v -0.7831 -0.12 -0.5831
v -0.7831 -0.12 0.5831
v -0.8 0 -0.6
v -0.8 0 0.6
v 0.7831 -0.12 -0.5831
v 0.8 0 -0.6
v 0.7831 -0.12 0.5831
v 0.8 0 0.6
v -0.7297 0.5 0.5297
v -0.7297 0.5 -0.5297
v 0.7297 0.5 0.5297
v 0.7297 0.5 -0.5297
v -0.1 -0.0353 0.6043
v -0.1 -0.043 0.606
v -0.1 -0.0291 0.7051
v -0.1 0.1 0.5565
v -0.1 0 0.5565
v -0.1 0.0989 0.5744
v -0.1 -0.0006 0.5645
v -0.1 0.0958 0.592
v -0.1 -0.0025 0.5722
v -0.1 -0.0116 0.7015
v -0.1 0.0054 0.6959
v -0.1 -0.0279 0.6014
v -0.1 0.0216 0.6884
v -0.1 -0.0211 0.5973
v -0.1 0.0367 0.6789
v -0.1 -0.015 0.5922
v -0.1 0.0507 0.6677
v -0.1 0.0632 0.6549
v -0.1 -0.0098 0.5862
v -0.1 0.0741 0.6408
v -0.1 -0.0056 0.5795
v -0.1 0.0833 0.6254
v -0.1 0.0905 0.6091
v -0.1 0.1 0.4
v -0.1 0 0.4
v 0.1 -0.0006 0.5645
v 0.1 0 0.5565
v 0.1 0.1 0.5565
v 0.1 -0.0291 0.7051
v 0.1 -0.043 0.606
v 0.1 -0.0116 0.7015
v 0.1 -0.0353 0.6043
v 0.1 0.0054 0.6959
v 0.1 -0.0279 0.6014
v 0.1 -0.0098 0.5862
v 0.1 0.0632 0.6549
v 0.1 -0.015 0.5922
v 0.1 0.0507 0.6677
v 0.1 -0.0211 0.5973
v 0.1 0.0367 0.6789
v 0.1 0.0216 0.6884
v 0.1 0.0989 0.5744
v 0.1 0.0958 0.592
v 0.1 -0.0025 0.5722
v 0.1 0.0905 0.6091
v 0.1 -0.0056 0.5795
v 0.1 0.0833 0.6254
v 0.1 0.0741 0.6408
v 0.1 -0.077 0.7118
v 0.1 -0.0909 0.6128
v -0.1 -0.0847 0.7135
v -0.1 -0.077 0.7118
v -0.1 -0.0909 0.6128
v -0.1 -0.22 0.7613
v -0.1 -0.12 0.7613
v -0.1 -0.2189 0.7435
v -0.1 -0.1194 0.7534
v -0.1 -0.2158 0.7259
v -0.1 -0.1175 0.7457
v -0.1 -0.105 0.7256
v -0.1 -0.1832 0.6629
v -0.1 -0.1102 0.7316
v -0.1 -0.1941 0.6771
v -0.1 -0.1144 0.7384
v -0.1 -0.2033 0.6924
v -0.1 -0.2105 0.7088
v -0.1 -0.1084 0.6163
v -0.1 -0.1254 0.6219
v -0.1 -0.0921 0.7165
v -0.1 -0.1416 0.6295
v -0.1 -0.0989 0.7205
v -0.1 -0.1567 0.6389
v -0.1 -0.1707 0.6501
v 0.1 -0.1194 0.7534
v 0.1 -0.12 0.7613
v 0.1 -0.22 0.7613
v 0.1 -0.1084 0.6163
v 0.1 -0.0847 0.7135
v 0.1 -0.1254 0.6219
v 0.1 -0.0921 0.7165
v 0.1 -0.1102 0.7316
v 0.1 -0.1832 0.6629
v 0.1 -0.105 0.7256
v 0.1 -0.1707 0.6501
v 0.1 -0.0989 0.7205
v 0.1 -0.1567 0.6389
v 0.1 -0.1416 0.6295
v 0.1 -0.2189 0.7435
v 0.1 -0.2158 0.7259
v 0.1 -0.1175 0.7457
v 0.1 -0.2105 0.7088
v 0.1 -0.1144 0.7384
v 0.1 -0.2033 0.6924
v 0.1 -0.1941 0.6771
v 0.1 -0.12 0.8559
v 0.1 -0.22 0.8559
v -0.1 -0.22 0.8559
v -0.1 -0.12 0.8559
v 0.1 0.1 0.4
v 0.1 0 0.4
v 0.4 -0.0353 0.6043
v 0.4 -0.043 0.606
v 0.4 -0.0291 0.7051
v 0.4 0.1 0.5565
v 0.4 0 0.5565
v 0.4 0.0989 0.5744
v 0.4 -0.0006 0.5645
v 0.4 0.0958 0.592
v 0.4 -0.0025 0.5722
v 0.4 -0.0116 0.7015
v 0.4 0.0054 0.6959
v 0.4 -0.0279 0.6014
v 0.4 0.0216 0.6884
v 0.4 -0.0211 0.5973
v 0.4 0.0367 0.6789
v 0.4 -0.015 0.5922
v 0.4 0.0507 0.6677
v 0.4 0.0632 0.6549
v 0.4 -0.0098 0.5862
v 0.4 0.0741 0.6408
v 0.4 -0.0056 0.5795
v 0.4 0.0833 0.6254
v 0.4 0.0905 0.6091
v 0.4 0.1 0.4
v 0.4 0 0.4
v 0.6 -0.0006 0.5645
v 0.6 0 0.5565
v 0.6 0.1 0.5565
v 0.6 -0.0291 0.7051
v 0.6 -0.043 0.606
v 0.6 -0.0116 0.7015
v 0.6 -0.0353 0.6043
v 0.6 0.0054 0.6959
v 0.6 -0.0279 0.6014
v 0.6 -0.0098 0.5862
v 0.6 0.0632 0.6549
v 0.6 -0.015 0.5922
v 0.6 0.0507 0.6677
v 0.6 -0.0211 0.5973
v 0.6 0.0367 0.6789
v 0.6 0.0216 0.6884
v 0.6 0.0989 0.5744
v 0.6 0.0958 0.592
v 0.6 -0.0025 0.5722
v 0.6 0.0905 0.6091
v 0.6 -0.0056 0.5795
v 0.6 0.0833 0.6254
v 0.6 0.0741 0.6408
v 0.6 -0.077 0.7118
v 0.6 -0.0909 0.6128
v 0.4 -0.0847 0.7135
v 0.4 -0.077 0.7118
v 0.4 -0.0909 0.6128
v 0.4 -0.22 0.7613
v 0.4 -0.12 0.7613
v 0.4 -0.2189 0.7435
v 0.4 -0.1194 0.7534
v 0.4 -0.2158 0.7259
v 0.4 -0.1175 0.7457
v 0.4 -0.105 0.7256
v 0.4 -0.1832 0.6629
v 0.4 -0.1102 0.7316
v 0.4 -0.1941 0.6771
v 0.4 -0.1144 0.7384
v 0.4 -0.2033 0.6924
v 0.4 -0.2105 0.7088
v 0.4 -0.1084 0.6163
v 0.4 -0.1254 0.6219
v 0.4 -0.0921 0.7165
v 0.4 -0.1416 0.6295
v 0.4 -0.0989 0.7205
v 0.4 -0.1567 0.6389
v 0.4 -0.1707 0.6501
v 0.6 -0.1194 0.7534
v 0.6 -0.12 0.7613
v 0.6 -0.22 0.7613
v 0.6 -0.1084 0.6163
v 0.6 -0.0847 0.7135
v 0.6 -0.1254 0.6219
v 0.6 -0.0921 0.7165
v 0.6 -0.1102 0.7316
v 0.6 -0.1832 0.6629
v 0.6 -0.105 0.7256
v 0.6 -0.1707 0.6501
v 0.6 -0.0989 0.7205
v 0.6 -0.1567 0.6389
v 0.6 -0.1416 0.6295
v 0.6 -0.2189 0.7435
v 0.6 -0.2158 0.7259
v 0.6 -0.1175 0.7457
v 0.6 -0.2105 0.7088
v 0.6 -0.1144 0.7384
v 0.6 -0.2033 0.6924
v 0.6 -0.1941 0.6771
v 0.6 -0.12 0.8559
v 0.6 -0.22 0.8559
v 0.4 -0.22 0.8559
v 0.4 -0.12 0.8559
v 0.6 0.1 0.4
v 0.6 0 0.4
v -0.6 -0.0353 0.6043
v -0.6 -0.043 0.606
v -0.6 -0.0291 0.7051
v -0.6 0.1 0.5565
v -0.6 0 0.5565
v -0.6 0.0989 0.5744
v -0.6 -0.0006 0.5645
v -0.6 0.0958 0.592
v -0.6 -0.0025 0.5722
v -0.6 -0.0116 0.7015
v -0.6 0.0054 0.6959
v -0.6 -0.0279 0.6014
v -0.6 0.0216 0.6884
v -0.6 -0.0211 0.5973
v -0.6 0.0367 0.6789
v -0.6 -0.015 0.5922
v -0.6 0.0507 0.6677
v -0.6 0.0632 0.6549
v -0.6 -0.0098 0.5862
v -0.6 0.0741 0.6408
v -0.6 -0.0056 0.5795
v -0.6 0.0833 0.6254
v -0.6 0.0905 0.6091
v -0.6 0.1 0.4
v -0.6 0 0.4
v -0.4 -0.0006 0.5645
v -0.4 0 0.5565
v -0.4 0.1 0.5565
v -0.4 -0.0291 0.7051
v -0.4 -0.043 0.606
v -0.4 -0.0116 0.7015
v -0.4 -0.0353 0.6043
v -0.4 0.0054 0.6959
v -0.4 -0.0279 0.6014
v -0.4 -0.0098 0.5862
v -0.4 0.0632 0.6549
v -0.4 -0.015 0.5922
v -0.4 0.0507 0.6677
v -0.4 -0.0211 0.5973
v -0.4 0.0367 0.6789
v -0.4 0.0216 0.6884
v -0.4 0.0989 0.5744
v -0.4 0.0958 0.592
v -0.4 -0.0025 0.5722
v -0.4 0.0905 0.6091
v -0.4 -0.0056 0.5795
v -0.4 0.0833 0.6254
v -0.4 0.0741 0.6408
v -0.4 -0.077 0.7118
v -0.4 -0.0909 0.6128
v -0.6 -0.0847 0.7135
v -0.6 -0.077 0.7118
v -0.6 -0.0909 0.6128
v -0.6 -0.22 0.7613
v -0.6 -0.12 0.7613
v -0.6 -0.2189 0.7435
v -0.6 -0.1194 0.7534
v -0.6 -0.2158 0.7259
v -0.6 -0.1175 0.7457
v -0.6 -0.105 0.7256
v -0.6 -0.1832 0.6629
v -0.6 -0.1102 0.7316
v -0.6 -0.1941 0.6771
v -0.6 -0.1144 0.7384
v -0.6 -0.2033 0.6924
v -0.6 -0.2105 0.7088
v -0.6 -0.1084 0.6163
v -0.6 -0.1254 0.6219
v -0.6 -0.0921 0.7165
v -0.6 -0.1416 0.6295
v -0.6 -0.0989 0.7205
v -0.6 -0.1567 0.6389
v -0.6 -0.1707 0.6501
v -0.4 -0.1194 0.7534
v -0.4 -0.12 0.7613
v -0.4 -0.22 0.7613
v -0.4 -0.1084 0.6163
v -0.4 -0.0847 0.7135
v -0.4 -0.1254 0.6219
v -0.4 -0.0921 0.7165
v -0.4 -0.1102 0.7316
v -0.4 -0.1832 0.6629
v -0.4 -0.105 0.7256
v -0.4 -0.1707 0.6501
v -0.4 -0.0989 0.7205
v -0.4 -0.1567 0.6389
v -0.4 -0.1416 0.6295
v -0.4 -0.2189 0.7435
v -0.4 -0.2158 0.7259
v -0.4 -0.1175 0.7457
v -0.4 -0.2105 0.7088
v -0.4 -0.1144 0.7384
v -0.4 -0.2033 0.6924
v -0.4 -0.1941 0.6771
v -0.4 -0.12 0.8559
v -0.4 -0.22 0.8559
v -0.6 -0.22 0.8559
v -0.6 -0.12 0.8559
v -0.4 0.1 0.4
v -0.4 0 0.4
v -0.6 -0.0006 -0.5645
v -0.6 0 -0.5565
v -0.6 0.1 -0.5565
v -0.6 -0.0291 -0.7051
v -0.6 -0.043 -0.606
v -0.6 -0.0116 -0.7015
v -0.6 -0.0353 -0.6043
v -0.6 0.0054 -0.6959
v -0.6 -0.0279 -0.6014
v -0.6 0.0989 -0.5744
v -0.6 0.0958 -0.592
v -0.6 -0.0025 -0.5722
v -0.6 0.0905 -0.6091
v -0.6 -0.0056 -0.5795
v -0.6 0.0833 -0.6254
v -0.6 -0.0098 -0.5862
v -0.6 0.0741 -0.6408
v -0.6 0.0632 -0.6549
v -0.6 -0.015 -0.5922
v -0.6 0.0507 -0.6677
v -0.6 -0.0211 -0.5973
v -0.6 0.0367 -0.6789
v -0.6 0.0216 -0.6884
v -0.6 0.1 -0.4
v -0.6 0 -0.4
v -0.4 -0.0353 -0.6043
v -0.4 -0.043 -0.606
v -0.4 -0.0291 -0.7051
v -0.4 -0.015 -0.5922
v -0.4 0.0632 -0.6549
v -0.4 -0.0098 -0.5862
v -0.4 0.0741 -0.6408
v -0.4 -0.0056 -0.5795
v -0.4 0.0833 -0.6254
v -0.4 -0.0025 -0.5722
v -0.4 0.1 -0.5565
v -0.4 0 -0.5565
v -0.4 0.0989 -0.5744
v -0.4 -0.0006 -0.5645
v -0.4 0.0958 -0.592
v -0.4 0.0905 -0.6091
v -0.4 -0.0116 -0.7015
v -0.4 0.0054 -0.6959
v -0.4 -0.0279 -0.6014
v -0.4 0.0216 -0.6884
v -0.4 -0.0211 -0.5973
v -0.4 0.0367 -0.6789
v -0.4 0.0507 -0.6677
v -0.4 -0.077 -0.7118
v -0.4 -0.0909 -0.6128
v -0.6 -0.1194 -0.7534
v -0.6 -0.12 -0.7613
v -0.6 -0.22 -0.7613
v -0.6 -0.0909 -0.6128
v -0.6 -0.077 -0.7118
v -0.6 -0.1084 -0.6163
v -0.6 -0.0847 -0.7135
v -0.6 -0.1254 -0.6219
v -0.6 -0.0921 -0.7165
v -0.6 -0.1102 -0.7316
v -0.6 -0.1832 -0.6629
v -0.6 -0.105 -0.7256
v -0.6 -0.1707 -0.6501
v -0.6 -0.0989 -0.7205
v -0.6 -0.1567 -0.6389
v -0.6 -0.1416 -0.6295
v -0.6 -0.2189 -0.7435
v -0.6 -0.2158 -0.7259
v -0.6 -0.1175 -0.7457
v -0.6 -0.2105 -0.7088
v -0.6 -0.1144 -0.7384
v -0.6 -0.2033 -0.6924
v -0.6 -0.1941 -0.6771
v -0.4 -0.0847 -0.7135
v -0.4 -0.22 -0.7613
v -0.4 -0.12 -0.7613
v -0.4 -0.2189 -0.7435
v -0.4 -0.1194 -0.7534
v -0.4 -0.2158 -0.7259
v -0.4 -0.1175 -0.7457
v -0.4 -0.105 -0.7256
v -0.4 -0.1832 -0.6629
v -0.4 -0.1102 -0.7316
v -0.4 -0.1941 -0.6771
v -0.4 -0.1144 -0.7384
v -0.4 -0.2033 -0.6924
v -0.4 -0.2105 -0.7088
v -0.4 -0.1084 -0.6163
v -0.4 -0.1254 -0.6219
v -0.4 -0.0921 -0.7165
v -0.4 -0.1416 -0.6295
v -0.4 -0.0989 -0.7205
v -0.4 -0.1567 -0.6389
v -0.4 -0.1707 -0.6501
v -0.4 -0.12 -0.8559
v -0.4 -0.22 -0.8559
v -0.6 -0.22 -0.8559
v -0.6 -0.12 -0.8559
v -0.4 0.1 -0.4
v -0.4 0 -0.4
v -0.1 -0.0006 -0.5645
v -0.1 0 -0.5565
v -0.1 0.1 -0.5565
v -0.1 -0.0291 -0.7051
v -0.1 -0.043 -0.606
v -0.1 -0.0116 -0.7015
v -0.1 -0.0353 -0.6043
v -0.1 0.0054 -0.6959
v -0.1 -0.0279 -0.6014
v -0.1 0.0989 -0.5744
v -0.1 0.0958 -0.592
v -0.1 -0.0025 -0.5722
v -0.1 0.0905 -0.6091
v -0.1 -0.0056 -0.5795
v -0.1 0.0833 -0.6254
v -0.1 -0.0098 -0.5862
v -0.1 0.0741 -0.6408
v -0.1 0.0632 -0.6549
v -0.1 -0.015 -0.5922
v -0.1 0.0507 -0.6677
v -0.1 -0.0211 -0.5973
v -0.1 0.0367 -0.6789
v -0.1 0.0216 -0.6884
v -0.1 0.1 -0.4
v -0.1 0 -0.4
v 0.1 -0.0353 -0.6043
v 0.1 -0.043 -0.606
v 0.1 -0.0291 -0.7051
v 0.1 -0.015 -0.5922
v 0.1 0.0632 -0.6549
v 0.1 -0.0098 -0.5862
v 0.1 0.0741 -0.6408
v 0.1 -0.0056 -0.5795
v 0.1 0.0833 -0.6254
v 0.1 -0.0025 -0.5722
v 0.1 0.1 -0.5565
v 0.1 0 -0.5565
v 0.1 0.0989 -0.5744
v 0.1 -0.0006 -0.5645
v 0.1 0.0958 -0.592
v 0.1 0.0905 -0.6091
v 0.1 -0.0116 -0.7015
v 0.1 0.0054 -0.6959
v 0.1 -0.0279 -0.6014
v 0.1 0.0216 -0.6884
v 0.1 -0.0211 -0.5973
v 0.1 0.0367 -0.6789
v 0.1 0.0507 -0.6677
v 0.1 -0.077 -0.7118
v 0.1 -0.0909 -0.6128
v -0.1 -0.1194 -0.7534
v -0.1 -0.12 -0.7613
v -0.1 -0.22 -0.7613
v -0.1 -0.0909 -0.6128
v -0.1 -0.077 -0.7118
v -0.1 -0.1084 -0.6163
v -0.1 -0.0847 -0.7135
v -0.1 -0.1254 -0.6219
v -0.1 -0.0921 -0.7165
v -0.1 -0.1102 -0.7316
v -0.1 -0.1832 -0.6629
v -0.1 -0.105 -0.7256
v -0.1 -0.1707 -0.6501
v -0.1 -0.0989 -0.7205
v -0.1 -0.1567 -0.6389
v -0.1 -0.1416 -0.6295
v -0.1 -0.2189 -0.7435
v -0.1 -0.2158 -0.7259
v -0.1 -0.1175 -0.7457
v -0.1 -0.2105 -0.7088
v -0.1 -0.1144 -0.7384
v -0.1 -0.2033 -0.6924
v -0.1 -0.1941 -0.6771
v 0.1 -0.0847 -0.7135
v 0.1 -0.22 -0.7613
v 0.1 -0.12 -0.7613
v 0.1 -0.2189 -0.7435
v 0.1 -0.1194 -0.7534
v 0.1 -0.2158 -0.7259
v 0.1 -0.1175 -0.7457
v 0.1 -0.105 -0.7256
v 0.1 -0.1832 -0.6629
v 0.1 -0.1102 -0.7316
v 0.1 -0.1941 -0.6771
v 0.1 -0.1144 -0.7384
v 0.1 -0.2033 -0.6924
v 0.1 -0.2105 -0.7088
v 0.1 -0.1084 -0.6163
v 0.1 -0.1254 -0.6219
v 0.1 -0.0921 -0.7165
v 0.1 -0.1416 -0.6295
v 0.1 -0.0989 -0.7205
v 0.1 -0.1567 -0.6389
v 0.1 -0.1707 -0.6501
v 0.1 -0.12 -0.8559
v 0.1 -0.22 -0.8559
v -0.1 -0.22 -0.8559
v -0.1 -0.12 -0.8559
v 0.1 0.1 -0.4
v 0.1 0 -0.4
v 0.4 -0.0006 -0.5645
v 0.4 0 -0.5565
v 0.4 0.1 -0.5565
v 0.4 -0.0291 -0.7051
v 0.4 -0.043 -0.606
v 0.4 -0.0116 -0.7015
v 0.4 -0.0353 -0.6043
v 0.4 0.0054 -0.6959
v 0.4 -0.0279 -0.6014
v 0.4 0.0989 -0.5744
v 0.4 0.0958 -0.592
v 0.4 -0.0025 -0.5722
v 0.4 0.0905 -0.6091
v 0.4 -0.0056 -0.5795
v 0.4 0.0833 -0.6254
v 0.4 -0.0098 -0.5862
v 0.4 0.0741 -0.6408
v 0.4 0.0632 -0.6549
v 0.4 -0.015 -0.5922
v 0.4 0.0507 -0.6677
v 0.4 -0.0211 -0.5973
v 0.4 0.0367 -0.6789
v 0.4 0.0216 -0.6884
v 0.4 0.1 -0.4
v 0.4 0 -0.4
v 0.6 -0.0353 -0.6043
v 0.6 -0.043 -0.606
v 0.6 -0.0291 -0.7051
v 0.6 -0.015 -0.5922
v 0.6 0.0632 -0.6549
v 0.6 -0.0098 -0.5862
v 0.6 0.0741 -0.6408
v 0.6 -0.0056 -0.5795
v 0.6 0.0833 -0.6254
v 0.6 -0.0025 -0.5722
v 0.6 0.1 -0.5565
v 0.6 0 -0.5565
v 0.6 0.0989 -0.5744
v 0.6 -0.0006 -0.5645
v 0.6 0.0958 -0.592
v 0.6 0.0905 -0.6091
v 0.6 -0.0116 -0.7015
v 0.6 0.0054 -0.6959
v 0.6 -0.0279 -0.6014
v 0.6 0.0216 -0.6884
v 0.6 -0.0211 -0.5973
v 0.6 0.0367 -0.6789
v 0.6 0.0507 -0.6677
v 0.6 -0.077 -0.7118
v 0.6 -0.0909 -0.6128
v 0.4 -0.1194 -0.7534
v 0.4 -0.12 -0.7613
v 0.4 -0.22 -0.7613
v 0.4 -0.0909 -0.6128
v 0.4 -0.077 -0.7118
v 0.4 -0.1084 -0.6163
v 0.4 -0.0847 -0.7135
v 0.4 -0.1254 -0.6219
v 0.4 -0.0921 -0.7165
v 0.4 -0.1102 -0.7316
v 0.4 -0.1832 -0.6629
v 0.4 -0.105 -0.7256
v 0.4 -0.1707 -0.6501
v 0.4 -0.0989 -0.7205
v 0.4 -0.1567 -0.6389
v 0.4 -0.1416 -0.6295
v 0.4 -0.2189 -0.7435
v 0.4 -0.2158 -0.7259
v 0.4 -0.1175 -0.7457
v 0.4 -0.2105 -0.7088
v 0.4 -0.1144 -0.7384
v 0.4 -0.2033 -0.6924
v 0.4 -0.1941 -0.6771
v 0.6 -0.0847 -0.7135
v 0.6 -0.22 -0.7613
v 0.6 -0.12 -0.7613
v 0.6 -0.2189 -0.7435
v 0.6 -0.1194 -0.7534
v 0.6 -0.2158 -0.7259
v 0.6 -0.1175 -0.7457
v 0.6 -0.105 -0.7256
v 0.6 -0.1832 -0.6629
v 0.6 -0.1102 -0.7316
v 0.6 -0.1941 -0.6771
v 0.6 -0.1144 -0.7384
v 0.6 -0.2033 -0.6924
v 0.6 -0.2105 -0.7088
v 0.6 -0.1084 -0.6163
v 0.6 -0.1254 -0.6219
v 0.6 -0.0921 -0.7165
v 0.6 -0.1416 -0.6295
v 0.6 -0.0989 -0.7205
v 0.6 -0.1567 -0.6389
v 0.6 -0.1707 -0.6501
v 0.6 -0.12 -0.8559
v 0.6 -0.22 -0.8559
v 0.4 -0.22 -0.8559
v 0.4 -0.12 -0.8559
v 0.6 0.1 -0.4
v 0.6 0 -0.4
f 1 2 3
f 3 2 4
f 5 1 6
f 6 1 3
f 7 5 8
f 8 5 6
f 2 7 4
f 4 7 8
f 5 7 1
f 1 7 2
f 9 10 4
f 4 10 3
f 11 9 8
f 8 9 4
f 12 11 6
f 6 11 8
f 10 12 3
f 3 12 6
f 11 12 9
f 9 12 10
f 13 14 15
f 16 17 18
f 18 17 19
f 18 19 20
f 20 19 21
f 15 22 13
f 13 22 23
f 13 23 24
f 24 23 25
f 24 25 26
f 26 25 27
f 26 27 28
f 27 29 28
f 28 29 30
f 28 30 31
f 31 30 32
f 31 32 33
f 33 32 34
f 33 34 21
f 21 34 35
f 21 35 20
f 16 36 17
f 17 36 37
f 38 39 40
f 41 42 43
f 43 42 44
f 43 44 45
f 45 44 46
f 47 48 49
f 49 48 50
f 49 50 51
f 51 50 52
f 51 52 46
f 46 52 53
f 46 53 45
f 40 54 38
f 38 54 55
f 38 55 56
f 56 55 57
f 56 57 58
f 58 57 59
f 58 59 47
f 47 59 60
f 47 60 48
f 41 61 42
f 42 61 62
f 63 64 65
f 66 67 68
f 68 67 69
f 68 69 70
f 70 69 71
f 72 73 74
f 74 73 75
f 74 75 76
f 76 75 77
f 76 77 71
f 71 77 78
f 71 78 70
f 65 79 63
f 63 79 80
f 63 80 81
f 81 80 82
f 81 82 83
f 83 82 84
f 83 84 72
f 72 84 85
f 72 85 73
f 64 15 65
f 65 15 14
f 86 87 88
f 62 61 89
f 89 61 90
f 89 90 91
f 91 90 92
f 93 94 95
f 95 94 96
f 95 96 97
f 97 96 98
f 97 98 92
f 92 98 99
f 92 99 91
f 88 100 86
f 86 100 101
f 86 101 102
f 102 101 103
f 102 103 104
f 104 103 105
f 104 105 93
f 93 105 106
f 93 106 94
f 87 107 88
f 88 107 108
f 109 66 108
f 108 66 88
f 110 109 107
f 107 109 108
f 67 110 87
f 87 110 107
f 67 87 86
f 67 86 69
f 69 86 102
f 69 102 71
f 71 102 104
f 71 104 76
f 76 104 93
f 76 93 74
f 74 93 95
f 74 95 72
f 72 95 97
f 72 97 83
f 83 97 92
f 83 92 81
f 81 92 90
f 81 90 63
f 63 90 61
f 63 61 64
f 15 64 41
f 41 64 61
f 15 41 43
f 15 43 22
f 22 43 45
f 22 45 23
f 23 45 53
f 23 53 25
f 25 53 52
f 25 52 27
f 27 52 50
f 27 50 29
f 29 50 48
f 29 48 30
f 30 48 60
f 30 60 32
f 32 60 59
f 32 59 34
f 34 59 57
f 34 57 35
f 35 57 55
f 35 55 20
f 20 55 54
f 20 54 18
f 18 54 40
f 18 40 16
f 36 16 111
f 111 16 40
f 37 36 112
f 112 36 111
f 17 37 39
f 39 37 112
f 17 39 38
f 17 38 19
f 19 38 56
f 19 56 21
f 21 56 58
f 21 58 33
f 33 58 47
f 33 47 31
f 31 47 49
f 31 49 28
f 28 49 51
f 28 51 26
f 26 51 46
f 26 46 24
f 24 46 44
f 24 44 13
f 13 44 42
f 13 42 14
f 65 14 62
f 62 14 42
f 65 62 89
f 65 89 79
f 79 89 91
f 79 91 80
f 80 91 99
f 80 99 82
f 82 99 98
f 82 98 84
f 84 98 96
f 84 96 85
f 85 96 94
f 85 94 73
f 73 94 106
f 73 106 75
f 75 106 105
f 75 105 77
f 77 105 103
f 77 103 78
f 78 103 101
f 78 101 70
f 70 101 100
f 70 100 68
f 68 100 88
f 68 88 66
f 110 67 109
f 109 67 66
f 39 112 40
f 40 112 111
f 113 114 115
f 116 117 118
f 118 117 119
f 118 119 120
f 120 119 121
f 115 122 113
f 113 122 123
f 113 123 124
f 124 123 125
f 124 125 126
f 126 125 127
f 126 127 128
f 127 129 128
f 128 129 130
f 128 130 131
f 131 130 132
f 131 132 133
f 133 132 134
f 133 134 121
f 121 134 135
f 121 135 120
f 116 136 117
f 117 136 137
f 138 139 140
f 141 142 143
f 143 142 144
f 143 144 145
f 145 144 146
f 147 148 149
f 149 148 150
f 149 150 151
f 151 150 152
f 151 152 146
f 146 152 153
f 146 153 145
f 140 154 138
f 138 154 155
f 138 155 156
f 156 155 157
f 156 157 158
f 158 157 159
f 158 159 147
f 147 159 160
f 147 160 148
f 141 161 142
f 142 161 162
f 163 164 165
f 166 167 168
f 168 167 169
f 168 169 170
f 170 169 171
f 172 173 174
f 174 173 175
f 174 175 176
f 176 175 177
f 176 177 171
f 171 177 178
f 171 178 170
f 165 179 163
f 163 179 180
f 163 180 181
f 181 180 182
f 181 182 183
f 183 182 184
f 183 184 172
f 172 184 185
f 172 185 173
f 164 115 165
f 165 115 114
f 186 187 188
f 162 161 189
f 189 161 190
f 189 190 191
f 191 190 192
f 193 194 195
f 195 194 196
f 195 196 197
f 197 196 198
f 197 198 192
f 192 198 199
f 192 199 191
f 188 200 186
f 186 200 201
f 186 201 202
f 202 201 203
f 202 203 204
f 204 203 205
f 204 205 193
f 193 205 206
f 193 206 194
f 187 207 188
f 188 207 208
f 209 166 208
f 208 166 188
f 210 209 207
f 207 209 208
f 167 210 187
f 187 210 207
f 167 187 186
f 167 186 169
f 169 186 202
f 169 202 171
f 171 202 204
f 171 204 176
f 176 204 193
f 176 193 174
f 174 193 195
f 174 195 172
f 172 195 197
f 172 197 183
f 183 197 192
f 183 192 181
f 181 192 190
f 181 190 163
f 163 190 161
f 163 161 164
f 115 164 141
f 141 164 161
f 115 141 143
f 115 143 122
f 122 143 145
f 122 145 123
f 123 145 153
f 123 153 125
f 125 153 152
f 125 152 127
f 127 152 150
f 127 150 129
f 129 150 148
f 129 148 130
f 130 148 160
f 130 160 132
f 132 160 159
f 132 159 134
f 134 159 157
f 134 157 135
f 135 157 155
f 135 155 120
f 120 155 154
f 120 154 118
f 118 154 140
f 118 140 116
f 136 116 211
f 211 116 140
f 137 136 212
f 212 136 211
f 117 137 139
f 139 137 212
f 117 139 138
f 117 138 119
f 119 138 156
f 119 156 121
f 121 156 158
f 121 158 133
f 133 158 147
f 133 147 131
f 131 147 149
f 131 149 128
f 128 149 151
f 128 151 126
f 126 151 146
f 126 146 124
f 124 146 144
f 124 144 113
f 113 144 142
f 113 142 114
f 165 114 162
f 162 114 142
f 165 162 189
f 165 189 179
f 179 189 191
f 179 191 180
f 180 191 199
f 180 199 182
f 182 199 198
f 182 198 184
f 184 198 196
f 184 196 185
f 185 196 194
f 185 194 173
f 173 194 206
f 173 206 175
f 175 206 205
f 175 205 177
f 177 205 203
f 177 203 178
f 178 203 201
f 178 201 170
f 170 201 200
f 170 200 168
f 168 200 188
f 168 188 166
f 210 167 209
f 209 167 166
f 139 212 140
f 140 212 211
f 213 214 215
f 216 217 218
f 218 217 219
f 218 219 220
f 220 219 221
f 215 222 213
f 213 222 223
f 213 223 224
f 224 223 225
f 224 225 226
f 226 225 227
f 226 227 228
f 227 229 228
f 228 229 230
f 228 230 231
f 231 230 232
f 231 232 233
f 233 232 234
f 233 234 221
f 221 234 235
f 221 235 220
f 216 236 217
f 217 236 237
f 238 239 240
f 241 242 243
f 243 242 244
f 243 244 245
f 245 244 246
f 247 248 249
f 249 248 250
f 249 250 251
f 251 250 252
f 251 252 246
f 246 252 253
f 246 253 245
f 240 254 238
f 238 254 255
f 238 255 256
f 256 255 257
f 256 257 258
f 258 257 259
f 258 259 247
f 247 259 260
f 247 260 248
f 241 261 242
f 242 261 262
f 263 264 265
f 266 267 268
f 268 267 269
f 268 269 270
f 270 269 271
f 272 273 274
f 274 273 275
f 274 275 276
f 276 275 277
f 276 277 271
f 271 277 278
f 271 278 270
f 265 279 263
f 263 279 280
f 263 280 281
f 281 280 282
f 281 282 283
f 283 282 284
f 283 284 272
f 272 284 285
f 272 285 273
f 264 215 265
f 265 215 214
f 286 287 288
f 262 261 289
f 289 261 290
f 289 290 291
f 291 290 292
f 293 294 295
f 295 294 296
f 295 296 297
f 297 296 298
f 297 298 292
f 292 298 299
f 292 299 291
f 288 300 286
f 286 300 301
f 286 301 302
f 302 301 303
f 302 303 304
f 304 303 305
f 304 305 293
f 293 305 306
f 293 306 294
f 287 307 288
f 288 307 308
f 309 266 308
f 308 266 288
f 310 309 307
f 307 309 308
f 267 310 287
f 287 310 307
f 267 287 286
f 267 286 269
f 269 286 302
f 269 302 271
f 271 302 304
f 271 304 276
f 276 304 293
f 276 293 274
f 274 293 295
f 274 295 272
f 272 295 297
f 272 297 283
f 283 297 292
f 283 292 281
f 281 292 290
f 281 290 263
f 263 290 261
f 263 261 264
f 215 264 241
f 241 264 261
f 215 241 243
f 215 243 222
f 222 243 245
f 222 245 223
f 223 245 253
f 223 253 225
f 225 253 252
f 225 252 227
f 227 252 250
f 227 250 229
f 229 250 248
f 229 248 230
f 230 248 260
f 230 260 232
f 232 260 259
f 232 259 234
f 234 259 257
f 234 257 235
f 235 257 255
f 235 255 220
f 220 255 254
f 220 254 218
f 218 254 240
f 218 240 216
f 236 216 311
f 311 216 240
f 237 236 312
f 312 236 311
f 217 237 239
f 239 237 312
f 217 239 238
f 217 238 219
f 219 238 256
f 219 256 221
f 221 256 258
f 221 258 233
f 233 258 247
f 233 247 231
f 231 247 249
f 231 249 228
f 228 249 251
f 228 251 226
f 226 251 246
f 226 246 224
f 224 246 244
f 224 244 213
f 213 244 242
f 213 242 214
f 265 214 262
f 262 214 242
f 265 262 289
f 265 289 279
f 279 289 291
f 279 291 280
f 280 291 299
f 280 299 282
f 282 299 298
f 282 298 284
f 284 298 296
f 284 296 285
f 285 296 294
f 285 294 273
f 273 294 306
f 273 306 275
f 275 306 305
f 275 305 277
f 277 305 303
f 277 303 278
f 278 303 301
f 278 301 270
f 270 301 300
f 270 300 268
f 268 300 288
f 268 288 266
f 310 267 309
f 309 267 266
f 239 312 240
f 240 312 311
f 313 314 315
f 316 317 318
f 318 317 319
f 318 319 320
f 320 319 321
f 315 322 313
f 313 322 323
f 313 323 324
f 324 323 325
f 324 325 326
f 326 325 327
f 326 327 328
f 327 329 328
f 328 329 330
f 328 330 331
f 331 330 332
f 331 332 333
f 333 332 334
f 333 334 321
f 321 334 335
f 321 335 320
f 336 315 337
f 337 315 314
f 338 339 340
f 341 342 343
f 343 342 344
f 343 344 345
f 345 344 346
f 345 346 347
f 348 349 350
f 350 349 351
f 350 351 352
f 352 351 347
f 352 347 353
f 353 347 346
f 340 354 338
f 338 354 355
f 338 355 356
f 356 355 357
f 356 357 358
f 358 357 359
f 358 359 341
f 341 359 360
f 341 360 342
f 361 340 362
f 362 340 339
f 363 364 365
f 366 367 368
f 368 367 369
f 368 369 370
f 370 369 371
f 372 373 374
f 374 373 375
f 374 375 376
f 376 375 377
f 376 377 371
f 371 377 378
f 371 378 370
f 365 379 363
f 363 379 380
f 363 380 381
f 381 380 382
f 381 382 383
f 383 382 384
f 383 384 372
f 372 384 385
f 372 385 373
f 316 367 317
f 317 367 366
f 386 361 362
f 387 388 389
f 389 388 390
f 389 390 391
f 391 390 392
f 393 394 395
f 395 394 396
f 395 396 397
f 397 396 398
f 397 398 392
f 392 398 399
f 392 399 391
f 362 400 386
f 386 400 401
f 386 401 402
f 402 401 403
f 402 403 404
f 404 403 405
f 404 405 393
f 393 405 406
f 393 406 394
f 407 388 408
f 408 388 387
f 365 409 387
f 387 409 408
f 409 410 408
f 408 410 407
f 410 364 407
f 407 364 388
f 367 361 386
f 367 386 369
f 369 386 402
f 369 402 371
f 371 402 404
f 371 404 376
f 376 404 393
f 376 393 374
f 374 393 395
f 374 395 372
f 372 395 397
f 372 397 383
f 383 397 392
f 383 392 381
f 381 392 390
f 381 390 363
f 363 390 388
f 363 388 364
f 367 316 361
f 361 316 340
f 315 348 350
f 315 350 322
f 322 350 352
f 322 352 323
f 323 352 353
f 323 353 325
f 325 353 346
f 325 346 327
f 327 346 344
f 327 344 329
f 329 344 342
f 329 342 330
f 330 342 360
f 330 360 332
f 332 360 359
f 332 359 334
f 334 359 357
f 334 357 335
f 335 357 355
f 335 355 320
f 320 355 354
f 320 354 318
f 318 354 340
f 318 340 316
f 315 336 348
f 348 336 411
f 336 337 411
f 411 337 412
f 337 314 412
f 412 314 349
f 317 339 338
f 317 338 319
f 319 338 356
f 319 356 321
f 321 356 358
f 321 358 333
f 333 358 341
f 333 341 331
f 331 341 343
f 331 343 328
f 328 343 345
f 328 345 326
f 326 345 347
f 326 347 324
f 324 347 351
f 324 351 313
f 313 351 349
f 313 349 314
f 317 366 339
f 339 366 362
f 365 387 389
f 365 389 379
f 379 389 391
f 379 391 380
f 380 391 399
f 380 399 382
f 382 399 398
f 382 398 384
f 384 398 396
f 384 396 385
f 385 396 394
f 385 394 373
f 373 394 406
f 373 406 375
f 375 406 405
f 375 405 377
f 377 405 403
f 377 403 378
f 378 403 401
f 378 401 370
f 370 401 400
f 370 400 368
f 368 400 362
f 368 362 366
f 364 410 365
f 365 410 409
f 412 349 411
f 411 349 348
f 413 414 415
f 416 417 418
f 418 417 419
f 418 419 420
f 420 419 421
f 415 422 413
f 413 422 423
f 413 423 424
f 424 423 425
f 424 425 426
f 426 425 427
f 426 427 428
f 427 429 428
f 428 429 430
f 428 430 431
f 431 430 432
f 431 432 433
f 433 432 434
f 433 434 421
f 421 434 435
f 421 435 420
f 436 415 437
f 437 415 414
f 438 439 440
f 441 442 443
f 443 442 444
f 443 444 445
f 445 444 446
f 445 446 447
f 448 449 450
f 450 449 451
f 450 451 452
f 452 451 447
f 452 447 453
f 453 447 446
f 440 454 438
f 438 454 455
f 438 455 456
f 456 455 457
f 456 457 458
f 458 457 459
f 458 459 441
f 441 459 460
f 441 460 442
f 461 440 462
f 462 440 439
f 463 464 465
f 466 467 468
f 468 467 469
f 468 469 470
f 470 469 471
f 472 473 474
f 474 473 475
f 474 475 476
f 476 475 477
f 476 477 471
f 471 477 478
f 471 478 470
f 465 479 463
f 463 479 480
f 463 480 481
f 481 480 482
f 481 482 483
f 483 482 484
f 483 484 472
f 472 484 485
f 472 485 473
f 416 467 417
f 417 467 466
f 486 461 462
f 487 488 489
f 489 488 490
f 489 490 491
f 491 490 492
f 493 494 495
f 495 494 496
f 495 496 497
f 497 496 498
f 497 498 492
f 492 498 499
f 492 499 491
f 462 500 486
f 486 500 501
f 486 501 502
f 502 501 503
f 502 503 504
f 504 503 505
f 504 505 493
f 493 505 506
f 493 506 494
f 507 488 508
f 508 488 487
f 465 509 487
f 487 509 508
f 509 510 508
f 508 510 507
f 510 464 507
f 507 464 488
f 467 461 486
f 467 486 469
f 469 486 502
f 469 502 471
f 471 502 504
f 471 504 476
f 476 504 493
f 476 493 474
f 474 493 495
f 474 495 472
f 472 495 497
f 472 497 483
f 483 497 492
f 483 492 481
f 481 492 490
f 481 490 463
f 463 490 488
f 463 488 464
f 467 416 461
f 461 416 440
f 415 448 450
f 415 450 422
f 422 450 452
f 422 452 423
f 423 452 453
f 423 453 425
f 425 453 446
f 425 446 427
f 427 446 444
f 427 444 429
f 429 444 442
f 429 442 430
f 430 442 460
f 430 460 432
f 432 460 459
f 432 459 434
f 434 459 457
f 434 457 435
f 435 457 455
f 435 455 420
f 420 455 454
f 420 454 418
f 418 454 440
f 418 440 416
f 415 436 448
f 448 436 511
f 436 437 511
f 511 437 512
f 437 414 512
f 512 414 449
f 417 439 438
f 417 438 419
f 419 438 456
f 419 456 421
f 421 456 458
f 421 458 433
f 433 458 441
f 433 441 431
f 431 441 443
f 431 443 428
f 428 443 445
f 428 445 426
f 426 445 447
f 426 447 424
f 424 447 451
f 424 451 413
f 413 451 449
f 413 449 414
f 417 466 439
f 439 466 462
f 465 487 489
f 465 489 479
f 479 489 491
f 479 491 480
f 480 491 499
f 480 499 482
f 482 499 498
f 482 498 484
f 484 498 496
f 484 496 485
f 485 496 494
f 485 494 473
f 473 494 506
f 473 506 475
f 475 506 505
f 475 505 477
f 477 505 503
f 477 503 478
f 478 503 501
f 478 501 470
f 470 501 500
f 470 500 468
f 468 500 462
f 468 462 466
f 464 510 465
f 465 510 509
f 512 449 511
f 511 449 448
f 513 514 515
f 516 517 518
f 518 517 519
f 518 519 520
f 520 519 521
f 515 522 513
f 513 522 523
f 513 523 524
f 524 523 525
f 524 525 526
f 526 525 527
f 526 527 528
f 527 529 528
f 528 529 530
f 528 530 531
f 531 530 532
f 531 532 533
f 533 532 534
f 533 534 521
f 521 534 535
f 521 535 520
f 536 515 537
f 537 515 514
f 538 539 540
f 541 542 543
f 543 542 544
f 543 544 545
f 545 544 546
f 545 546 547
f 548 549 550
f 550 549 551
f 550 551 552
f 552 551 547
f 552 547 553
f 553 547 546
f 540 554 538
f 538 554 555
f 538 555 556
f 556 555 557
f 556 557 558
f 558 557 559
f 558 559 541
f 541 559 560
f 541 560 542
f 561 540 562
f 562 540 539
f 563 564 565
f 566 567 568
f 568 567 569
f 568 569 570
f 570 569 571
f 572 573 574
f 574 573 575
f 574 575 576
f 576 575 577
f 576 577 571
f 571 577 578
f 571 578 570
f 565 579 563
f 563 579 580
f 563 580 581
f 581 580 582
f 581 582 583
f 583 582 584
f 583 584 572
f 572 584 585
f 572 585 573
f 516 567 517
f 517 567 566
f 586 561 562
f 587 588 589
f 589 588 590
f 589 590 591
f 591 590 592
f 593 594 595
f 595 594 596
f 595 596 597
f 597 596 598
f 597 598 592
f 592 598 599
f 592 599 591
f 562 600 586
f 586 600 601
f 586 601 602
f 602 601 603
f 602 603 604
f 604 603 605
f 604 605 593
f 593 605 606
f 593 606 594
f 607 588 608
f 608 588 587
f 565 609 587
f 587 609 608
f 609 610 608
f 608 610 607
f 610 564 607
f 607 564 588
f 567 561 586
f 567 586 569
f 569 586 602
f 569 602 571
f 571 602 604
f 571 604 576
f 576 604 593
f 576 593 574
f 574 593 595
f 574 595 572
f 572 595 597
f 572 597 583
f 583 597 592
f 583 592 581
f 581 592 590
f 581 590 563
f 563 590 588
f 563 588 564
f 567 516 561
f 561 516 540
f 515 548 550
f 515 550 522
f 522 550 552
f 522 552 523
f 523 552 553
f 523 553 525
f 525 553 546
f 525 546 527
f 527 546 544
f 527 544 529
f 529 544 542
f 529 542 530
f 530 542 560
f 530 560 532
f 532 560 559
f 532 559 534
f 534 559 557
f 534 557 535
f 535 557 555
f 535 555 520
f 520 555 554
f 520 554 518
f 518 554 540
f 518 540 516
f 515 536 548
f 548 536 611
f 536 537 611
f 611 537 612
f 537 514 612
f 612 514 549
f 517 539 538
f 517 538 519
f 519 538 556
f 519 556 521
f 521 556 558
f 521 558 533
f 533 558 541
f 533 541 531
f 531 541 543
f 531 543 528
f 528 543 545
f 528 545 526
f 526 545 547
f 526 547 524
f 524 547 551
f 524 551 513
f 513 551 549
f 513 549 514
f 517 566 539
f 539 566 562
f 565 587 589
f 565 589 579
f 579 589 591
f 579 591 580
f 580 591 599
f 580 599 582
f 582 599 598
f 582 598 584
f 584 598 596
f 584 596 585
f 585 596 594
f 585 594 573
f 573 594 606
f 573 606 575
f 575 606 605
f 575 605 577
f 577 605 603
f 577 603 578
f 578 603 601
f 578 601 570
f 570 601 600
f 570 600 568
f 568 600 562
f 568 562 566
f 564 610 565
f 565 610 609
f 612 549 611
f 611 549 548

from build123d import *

# Parameters (mm, degrees)
SKETCH1_W                     = 1.6
SKETCH1_H                     = 1.2
BOSS_EXTRUDE1_DEPTH           = 0.5
BOSS_EXTRUDE1_TAPER           = 8
BOSS_EXTRUDE1_OTHER_WAY_DEPTH = 0.12
BOSS_EXTRUDE1_OTHER_WAY_TAPER = 8
BASE_FLANGE2_DEPTH            = 0.1
LPATTERN1_COUNT               = 2
LPATTERN1_PITCH               = 0.5
LPATTERN1_2_COUNT             = 2
LPATTERN1_2_PITCH             = 0.5


# Sheet-metal steps are written as plain solids
with BuildPart() as part:
    # Sketch1 → Boss-Extrude1 (new body)
    with BuildSketch(Plane(origin=(0, 0, 0), x_dir=(1, 0, 0), z_dir=(0, 1, 0))):
        Rectangle(SKETCH1_W, SKETCH1_H)
    extrude(amount=BOSS_EXTRUDE1_DEPTH, taper=BOSS_EXTRUDE1_TAPER)

    # Sketch1 → Boss-Extrude1 other way (add)
    with BuildSketch(Plane(origin=(0, 0, 0), x_dir=(1, 0, 0), z_dir=(0, 1, 0))):
        Rectangle(SKETCH1_W, SKETCH1_H)
    extrude(amount=-BOSS_EXTRUDE1_OTHER_WAY_DEPTH, taper=BOSS_EXTRUDE1_OTHER_WAY_TAPER)


with BuildPart() as body_2:
    # Sketch2 → Base-Flange2 (new, symmetric)
    with BuildSketch(Plane.ZY):
        with BuildLine():
            Line((0.4, 0), (0.556535663, 0))
            ThreePointArc((0.556535663, 0), (0.589338615, -0.012264521), (0.606049067, -0.043041345))
            Line((0.606049067, -0.043041345), (0.612771784, -0.090875965))
            ThreePointArc((0.612771784, -0.090875965), (0.66290314, -0.183206437), (0.761311994, -0.22))
            Line((0.761311994, -0.22), (0.855918984, -0.22))
            Line((0.855918984, -0.22), (0.855918984, -0.12))
            Line((0.855918984, -0.12), (0.761311994, -0.12))
            ThreePointArc((0.761311994, -0.12), (0.728509043, -0.107735479), (0.711798591, -0.076958655))
            Line((0.711798591, -0.076958655), (0.705075873, -0.029124035))
            ThreePointArc((0.705075873, -0.029124035), (0.654944517, 0.063206437), (0.556535663, 0.1))
            Line((0.556535663, 0.1), (0.4, 0.1))
            Line((0.4, 0.1), (0.4, 0))
        make_face()
    extrude(amount=BASE_FLANGE2_DEPTH, both=True)


with BuildPart() as lpattern1_1:
    # LPattern1: pattern copy
    add(body_2.part.moved(Location(Vector(1, 0, 0) * (1 * LPATTERN1_PITCH))))


with BuildPart() as lpattern1_2_1:
    # LPattern1 2: pattern copy
    add(body_2.part.moved(Location(Vector(-1, 0, 0) * (1 * LPATTERN1_2_PITCH))))


with BuildPart() as body_5:
    # Mirror1: mirrored copy
    add(lpattern1_2_1.part.mirror(Plane(origin=(0, 0, 0), x_dir=(1, 0, 0), z_dir=(0, 0, -1))))


with BuildPart() as body_6:
    # Mirror1 2: mirrored copy
    add(body_2.part.mirror(Plane(origin=(0, 0, 0), x_dir=(1, 0, 0), z_dir=(0, 0, -1))))


with BuildPart() as body_7:
    # Mirror1 3: mirrored copy
    add(lpattern1_1.part.mirror(Plane(origin=(0, 0, 0), x_dir=(1, 0, 0), z_dir=(0, 0, -1))))


solid = Compound([part.part, body_2.part, lpattern1_1.part, lpattern1_2_1.part, body_5.part, body_6.part, body_7.part])
